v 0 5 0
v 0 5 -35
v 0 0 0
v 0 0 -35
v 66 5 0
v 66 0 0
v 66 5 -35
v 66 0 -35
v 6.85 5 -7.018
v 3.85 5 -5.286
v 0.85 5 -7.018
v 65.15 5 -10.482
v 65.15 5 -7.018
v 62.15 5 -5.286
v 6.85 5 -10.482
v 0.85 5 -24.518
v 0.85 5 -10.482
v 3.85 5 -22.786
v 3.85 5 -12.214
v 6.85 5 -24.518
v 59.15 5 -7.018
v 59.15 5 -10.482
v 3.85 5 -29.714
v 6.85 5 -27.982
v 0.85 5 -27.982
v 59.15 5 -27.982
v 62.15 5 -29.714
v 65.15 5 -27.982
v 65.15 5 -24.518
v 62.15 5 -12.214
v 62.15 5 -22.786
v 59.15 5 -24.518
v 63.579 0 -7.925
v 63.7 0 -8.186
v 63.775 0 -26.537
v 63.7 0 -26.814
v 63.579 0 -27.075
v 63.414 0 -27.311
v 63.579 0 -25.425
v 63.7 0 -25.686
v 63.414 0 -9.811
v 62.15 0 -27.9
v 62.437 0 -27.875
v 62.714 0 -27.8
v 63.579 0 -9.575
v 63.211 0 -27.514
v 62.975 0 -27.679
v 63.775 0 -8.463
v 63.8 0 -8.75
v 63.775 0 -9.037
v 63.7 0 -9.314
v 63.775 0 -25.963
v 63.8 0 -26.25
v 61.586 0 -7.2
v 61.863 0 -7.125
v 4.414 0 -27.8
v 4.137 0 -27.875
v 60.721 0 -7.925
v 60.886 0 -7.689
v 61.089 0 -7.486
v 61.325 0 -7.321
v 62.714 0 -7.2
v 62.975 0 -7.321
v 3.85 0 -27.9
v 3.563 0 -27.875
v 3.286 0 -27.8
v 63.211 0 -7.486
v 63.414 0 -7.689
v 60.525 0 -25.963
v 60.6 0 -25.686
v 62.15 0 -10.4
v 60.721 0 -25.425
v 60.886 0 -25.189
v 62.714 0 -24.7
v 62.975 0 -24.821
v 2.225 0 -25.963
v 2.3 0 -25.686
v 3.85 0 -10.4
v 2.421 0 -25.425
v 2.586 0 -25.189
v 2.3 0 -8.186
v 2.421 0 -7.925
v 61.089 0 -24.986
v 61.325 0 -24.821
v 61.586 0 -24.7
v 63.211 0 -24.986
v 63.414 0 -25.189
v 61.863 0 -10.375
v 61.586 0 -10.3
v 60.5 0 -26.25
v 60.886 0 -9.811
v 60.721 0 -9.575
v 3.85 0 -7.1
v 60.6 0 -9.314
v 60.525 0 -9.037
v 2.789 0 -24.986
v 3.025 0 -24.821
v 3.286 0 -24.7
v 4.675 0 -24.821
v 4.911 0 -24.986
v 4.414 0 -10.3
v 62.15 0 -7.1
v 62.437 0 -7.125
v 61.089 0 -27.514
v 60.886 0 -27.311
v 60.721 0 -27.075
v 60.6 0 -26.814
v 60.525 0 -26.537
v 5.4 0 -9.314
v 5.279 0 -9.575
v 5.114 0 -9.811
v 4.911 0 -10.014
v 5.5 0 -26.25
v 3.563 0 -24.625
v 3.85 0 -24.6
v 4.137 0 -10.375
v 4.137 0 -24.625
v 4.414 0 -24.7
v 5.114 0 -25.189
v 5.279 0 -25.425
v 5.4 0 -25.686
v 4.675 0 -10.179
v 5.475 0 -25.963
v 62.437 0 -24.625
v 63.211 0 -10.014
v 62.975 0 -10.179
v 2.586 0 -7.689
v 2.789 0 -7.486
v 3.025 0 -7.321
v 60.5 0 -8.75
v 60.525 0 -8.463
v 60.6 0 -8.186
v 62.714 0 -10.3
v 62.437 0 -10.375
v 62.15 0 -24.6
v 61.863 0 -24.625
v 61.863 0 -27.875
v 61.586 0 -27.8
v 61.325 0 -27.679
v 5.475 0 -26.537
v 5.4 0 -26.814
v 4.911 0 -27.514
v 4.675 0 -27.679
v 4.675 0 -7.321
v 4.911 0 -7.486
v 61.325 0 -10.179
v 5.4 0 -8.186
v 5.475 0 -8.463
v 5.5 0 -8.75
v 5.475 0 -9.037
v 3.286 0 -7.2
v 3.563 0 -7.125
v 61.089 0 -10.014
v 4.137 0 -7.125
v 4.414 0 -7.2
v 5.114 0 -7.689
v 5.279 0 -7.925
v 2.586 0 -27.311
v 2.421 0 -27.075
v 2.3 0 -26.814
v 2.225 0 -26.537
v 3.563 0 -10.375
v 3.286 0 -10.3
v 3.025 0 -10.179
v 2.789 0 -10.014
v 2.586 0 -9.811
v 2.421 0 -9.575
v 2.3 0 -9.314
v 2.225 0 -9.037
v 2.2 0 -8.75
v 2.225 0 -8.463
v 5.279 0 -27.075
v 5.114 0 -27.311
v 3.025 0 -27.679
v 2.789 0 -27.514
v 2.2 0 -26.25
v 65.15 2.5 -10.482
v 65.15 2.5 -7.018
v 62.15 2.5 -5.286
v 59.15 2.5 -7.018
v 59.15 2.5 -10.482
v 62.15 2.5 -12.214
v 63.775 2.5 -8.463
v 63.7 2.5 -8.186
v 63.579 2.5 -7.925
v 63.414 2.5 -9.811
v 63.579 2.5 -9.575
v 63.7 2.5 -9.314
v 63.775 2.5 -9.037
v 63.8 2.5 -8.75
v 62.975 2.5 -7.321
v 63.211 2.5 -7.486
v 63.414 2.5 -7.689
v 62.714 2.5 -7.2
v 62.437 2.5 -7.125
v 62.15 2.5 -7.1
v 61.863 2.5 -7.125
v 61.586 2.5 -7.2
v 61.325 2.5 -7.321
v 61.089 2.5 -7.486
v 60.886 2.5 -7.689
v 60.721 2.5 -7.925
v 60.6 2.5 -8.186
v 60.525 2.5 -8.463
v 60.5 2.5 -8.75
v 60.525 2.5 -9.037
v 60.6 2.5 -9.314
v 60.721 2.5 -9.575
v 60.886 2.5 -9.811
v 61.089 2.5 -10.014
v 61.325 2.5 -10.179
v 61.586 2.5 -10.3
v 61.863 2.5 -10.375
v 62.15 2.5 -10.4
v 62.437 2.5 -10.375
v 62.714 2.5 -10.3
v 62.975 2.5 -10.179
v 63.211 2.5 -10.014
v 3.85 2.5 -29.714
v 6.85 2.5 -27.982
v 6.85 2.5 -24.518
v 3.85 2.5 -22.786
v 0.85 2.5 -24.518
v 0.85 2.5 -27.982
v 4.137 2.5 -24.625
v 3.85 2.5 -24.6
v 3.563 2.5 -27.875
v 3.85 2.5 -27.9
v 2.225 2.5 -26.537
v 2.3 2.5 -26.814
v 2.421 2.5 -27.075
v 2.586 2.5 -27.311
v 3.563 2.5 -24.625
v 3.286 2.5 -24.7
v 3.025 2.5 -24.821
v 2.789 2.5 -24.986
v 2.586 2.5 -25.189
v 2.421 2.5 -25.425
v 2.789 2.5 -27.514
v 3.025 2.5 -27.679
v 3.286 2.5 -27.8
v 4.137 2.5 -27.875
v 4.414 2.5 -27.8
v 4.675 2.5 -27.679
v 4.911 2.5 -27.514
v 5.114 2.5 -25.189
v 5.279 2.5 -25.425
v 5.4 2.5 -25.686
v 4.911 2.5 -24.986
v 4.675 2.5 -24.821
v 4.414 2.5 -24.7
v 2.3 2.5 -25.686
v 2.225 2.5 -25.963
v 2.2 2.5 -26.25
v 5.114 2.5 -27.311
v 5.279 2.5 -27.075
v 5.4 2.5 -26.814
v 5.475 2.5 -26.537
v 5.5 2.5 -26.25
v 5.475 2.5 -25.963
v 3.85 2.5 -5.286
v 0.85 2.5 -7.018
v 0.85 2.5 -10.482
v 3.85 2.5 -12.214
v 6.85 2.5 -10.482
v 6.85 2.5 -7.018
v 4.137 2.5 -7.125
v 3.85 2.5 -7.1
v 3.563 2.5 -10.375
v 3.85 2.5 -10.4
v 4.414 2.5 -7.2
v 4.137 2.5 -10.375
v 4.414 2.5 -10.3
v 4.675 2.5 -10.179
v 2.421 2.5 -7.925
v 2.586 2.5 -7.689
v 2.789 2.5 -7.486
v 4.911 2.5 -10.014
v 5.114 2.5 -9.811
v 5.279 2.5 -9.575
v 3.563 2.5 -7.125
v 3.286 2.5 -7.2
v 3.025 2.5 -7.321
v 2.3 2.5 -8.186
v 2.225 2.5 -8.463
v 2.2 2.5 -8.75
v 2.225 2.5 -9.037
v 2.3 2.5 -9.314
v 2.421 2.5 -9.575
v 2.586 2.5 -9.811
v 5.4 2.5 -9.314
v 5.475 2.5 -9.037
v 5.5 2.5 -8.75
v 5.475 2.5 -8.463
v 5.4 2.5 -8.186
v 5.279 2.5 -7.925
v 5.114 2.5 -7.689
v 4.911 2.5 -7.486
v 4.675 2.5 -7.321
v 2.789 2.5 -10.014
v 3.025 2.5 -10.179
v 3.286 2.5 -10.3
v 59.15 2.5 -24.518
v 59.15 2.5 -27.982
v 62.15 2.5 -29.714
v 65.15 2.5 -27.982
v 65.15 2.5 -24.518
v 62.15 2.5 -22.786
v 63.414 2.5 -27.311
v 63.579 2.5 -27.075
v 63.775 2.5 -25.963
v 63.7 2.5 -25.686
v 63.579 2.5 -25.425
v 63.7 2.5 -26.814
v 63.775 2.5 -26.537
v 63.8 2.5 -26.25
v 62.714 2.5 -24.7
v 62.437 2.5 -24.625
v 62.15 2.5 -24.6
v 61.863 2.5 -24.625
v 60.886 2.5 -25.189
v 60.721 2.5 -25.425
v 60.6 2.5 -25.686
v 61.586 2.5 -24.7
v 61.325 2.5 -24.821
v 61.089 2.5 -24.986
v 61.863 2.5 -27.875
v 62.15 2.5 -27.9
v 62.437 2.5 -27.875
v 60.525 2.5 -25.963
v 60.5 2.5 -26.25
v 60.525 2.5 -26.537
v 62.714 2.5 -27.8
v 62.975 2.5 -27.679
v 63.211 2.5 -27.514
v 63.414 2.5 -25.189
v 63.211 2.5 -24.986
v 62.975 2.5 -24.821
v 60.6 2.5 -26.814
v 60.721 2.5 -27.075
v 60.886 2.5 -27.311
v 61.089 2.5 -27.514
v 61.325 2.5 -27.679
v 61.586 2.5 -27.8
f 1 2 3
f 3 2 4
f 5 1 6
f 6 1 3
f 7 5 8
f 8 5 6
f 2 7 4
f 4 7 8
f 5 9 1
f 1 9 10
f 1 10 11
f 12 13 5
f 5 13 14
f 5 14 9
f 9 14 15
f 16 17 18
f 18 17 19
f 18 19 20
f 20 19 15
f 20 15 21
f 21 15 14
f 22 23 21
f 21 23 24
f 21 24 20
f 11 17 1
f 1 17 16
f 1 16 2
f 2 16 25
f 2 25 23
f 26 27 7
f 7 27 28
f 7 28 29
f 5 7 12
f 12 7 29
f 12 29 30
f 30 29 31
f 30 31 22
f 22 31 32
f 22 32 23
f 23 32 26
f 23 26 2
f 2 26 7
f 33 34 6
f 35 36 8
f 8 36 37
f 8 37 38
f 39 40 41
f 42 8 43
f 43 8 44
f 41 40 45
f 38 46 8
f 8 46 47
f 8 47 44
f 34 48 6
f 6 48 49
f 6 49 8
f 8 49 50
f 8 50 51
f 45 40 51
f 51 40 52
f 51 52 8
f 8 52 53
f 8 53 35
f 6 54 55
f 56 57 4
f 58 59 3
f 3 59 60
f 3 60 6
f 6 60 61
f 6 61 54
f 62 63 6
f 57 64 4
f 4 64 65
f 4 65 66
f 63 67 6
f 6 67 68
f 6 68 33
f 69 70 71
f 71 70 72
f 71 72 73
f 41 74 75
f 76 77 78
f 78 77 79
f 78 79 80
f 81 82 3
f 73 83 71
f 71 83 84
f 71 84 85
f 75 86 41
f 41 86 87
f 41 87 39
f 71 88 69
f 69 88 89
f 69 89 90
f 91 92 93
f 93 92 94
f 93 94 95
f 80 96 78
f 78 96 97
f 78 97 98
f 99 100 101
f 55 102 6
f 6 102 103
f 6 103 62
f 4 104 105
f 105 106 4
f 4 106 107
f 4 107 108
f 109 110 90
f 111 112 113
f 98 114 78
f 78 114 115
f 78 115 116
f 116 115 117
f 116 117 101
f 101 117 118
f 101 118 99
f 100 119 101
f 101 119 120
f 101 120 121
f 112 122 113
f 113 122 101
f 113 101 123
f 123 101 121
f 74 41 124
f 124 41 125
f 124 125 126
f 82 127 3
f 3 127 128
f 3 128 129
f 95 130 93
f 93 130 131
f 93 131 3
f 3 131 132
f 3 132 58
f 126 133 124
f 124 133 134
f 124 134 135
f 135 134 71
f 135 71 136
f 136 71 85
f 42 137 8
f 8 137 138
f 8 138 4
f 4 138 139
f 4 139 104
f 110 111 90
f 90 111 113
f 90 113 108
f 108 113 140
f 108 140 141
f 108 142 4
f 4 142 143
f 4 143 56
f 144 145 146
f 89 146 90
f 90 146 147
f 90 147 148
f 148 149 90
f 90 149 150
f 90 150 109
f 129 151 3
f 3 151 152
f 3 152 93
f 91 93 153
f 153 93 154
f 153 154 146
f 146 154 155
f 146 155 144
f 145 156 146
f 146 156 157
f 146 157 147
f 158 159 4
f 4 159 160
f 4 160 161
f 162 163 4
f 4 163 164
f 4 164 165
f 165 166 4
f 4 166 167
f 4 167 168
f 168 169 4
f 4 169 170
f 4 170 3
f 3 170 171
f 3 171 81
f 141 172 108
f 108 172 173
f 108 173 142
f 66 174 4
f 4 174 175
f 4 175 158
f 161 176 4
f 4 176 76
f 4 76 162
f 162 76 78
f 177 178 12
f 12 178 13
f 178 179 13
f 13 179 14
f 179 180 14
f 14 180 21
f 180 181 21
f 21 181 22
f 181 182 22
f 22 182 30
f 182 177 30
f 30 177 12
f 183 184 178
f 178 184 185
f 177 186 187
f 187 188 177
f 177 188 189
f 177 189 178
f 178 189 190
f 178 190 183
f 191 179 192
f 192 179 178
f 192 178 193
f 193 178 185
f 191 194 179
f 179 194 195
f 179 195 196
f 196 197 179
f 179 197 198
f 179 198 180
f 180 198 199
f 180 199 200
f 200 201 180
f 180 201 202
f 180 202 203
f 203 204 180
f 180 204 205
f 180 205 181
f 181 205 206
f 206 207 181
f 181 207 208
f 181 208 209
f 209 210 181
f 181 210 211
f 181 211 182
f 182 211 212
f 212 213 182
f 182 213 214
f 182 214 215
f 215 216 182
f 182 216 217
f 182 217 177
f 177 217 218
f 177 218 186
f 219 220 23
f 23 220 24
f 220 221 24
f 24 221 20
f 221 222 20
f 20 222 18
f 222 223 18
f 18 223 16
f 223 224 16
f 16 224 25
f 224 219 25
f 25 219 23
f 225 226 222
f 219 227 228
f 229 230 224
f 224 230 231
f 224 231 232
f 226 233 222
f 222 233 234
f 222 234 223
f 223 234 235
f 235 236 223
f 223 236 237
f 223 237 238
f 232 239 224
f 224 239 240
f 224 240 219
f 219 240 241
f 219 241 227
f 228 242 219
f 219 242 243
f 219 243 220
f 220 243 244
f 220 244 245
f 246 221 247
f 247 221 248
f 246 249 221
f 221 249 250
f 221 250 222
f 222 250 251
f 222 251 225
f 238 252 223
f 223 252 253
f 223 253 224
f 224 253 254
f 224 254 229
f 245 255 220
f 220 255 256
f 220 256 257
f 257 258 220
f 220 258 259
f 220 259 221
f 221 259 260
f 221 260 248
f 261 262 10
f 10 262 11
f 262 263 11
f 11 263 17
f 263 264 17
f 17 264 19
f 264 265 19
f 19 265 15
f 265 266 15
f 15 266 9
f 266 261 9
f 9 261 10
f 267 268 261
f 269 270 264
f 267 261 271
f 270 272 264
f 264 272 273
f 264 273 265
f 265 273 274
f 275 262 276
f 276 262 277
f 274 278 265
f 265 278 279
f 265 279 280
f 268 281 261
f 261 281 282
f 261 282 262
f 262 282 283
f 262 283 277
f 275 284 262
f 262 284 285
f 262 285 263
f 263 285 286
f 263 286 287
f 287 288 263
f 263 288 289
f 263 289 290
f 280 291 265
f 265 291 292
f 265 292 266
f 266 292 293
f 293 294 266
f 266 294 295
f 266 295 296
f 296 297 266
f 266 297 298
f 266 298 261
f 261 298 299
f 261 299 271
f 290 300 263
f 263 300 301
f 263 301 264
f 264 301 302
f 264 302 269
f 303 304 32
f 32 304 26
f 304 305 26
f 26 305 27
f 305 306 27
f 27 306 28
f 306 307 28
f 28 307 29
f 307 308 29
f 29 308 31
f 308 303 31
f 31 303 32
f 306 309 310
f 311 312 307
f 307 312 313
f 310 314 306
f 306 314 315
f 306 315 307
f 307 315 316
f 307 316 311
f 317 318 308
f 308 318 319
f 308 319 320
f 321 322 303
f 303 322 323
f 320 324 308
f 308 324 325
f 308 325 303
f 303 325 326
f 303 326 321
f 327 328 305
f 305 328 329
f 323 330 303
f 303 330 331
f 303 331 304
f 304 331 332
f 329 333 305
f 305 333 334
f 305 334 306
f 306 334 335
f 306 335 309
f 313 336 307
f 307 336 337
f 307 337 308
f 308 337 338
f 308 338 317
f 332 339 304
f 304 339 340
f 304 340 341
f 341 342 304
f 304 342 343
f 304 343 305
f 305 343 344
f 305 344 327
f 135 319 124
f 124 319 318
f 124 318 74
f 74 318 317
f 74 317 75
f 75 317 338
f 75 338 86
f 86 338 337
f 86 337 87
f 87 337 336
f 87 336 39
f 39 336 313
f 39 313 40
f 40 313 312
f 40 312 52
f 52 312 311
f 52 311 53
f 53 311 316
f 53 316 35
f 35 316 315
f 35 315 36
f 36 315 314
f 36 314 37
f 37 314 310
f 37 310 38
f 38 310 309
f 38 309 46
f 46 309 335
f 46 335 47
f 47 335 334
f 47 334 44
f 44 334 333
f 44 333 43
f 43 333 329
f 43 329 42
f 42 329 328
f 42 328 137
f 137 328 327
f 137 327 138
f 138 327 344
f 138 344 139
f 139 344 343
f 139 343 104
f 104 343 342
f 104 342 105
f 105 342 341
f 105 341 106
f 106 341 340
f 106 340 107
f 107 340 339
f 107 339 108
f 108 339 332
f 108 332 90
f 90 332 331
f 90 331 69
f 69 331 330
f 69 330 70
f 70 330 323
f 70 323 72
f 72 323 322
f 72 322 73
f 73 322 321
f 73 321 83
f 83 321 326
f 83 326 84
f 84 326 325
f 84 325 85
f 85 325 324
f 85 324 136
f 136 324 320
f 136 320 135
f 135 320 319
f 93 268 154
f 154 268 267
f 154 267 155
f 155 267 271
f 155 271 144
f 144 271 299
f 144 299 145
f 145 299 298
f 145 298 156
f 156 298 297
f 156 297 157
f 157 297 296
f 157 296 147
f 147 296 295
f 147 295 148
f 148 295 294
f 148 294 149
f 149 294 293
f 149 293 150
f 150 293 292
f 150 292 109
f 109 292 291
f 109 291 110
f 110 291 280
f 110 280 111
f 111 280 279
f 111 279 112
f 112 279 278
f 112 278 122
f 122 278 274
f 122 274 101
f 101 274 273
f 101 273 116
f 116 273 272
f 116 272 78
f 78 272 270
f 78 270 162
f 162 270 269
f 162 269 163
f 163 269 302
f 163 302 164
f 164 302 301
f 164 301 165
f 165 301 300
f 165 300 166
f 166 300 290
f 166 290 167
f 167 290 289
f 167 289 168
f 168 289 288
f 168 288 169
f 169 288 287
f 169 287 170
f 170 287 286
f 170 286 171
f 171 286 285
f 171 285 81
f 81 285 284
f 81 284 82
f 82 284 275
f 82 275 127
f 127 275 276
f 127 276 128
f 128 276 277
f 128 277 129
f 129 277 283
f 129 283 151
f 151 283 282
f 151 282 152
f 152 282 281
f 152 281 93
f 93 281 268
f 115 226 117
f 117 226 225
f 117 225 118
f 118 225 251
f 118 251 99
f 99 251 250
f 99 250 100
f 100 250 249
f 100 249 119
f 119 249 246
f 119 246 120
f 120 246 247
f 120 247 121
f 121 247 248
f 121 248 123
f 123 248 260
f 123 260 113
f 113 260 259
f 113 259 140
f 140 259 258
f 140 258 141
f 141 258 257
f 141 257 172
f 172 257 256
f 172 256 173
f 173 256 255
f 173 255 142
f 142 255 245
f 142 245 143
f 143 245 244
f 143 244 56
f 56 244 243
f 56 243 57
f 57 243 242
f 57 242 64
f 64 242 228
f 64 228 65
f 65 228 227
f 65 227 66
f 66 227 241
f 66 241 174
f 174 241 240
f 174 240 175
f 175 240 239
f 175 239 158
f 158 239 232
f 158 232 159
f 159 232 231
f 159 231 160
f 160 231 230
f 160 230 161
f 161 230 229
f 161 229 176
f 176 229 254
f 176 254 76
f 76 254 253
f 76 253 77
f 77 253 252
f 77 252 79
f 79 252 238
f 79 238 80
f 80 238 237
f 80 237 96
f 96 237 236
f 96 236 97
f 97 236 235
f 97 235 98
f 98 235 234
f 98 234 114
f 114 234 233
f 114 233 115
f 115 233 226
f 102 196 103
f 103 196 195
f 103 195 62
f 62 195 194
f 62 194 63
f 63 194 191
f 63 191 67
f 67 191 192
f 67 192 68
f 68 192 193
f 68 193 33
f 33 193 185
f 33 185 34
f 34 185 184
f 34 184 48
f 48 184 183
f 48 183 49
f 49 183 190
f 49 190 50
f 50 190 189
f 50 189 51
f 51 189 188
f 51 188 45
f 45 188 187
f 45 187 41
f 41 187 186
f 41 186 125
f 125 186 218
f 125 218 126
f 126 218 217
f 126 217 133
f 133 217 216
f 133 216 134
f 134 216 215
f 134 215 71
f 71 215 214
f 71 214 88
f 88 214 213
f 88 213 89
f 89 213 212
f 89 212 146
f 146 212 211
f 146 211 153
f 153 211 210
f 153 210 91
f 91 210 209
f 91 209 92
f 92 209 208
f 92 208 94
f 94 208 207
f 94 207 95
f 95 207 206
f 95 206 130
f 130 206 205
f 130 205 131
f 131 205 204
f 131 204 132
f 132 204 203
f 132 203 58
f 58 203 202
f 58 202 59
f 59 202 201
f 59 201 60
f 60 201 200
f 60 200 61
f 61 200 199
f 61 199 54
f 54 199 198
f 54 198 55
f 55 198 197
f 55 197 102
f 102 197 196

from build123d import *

# Parameters (mm, degrees)
SKETCH1_W           = 66
SKETCH1_H           = 35
BOSS_EXTRUDE1_DEPTH = 5
CUT_EXTRUDE1_DEPTH  = 2.5
SKETCH3_R           = 1.65
CUT_EXTRUDE3_DEPTH  = 75.873226189


with BuildPart() as part:
    # Sketch1 → Boss-Extrude1 (new body)
    with BuildSketch(Plane(origin=(0, 0, 0), x_dir=(1, 0, 0), z_dir=(0, 1, 0))):
        with Locations((33, 17.5)):
            Rectangle(SKETCH1_W, SKETCH1_H)
    extrude(amount=BOSS_EXTRUDE1_DEPTH)

    # Sketch2 → Cut-Extrude1 (cut)
    with BuildSketch(Plane(origin=(0, 5, 0), x_dir=(1, 0, 0), z_dir=(0, 1, 0))):
        Polygon((65.15, 7.017949192), (62.15, 5.285898385), (59.15, 7.017949192), (59.15, 10.482050808), (62.15, 12.214101615), (65.15, 10.482050808), align=None)
        Polygon((3.85, 29.714101615), (0.85, 27.982050808), (0.85, 24.517949192), (3.85, 22.785898385), (6.85, 24.517949192), (6.85, 27.982050808), align=None)
        Polygon((3.85, 5.285898385), (6.85, 7.017949192), (6.85, 10.482050808), (3.85, 12.214101615), (0.85, 10.482050808), (0.85, 7.017949192), align=None)
        Polygon((59.15, 27.982050808), (62.15, 29.714101615), (65.15, 27.982050808), (65.15, 24.517949192), (62.15, 22.785898385), (59.15, 24.517949192), align=None)
    extrude(amount=-CUT_EXTRUDE1_DEPTH, mode=Mode.SUBTRACT)

    # Sketch3 → Cut-Extrude3 (cut, through all)
    with BuildSketch(Plane(origin=(0, 5, 0), x_dir=(1, 0, 0), z_dir=(0, 1, 0))):
        with Locations(Location((3.85, 8.75, 0), (0, 0, 270))):
            Circle(SKETCH3_R)
        with Locations(Location((3.85, 26.25, 0), (0, 0, 270))):
            Circle(SKETCH3_R)
        with Locations(Location((62.15, 26.25, 0), (0, 0, 270))):
            Circle(SKETCH3_R)
        with Locations(Location((62.15, 8.75, 0), (0, 0, 270))):
            Circle(SKETCH3_R)
    extrude(amount=-CUT_EXTRUDE3_DEPTH, mode=Mode.SUBTRACT)


solid = part.part
